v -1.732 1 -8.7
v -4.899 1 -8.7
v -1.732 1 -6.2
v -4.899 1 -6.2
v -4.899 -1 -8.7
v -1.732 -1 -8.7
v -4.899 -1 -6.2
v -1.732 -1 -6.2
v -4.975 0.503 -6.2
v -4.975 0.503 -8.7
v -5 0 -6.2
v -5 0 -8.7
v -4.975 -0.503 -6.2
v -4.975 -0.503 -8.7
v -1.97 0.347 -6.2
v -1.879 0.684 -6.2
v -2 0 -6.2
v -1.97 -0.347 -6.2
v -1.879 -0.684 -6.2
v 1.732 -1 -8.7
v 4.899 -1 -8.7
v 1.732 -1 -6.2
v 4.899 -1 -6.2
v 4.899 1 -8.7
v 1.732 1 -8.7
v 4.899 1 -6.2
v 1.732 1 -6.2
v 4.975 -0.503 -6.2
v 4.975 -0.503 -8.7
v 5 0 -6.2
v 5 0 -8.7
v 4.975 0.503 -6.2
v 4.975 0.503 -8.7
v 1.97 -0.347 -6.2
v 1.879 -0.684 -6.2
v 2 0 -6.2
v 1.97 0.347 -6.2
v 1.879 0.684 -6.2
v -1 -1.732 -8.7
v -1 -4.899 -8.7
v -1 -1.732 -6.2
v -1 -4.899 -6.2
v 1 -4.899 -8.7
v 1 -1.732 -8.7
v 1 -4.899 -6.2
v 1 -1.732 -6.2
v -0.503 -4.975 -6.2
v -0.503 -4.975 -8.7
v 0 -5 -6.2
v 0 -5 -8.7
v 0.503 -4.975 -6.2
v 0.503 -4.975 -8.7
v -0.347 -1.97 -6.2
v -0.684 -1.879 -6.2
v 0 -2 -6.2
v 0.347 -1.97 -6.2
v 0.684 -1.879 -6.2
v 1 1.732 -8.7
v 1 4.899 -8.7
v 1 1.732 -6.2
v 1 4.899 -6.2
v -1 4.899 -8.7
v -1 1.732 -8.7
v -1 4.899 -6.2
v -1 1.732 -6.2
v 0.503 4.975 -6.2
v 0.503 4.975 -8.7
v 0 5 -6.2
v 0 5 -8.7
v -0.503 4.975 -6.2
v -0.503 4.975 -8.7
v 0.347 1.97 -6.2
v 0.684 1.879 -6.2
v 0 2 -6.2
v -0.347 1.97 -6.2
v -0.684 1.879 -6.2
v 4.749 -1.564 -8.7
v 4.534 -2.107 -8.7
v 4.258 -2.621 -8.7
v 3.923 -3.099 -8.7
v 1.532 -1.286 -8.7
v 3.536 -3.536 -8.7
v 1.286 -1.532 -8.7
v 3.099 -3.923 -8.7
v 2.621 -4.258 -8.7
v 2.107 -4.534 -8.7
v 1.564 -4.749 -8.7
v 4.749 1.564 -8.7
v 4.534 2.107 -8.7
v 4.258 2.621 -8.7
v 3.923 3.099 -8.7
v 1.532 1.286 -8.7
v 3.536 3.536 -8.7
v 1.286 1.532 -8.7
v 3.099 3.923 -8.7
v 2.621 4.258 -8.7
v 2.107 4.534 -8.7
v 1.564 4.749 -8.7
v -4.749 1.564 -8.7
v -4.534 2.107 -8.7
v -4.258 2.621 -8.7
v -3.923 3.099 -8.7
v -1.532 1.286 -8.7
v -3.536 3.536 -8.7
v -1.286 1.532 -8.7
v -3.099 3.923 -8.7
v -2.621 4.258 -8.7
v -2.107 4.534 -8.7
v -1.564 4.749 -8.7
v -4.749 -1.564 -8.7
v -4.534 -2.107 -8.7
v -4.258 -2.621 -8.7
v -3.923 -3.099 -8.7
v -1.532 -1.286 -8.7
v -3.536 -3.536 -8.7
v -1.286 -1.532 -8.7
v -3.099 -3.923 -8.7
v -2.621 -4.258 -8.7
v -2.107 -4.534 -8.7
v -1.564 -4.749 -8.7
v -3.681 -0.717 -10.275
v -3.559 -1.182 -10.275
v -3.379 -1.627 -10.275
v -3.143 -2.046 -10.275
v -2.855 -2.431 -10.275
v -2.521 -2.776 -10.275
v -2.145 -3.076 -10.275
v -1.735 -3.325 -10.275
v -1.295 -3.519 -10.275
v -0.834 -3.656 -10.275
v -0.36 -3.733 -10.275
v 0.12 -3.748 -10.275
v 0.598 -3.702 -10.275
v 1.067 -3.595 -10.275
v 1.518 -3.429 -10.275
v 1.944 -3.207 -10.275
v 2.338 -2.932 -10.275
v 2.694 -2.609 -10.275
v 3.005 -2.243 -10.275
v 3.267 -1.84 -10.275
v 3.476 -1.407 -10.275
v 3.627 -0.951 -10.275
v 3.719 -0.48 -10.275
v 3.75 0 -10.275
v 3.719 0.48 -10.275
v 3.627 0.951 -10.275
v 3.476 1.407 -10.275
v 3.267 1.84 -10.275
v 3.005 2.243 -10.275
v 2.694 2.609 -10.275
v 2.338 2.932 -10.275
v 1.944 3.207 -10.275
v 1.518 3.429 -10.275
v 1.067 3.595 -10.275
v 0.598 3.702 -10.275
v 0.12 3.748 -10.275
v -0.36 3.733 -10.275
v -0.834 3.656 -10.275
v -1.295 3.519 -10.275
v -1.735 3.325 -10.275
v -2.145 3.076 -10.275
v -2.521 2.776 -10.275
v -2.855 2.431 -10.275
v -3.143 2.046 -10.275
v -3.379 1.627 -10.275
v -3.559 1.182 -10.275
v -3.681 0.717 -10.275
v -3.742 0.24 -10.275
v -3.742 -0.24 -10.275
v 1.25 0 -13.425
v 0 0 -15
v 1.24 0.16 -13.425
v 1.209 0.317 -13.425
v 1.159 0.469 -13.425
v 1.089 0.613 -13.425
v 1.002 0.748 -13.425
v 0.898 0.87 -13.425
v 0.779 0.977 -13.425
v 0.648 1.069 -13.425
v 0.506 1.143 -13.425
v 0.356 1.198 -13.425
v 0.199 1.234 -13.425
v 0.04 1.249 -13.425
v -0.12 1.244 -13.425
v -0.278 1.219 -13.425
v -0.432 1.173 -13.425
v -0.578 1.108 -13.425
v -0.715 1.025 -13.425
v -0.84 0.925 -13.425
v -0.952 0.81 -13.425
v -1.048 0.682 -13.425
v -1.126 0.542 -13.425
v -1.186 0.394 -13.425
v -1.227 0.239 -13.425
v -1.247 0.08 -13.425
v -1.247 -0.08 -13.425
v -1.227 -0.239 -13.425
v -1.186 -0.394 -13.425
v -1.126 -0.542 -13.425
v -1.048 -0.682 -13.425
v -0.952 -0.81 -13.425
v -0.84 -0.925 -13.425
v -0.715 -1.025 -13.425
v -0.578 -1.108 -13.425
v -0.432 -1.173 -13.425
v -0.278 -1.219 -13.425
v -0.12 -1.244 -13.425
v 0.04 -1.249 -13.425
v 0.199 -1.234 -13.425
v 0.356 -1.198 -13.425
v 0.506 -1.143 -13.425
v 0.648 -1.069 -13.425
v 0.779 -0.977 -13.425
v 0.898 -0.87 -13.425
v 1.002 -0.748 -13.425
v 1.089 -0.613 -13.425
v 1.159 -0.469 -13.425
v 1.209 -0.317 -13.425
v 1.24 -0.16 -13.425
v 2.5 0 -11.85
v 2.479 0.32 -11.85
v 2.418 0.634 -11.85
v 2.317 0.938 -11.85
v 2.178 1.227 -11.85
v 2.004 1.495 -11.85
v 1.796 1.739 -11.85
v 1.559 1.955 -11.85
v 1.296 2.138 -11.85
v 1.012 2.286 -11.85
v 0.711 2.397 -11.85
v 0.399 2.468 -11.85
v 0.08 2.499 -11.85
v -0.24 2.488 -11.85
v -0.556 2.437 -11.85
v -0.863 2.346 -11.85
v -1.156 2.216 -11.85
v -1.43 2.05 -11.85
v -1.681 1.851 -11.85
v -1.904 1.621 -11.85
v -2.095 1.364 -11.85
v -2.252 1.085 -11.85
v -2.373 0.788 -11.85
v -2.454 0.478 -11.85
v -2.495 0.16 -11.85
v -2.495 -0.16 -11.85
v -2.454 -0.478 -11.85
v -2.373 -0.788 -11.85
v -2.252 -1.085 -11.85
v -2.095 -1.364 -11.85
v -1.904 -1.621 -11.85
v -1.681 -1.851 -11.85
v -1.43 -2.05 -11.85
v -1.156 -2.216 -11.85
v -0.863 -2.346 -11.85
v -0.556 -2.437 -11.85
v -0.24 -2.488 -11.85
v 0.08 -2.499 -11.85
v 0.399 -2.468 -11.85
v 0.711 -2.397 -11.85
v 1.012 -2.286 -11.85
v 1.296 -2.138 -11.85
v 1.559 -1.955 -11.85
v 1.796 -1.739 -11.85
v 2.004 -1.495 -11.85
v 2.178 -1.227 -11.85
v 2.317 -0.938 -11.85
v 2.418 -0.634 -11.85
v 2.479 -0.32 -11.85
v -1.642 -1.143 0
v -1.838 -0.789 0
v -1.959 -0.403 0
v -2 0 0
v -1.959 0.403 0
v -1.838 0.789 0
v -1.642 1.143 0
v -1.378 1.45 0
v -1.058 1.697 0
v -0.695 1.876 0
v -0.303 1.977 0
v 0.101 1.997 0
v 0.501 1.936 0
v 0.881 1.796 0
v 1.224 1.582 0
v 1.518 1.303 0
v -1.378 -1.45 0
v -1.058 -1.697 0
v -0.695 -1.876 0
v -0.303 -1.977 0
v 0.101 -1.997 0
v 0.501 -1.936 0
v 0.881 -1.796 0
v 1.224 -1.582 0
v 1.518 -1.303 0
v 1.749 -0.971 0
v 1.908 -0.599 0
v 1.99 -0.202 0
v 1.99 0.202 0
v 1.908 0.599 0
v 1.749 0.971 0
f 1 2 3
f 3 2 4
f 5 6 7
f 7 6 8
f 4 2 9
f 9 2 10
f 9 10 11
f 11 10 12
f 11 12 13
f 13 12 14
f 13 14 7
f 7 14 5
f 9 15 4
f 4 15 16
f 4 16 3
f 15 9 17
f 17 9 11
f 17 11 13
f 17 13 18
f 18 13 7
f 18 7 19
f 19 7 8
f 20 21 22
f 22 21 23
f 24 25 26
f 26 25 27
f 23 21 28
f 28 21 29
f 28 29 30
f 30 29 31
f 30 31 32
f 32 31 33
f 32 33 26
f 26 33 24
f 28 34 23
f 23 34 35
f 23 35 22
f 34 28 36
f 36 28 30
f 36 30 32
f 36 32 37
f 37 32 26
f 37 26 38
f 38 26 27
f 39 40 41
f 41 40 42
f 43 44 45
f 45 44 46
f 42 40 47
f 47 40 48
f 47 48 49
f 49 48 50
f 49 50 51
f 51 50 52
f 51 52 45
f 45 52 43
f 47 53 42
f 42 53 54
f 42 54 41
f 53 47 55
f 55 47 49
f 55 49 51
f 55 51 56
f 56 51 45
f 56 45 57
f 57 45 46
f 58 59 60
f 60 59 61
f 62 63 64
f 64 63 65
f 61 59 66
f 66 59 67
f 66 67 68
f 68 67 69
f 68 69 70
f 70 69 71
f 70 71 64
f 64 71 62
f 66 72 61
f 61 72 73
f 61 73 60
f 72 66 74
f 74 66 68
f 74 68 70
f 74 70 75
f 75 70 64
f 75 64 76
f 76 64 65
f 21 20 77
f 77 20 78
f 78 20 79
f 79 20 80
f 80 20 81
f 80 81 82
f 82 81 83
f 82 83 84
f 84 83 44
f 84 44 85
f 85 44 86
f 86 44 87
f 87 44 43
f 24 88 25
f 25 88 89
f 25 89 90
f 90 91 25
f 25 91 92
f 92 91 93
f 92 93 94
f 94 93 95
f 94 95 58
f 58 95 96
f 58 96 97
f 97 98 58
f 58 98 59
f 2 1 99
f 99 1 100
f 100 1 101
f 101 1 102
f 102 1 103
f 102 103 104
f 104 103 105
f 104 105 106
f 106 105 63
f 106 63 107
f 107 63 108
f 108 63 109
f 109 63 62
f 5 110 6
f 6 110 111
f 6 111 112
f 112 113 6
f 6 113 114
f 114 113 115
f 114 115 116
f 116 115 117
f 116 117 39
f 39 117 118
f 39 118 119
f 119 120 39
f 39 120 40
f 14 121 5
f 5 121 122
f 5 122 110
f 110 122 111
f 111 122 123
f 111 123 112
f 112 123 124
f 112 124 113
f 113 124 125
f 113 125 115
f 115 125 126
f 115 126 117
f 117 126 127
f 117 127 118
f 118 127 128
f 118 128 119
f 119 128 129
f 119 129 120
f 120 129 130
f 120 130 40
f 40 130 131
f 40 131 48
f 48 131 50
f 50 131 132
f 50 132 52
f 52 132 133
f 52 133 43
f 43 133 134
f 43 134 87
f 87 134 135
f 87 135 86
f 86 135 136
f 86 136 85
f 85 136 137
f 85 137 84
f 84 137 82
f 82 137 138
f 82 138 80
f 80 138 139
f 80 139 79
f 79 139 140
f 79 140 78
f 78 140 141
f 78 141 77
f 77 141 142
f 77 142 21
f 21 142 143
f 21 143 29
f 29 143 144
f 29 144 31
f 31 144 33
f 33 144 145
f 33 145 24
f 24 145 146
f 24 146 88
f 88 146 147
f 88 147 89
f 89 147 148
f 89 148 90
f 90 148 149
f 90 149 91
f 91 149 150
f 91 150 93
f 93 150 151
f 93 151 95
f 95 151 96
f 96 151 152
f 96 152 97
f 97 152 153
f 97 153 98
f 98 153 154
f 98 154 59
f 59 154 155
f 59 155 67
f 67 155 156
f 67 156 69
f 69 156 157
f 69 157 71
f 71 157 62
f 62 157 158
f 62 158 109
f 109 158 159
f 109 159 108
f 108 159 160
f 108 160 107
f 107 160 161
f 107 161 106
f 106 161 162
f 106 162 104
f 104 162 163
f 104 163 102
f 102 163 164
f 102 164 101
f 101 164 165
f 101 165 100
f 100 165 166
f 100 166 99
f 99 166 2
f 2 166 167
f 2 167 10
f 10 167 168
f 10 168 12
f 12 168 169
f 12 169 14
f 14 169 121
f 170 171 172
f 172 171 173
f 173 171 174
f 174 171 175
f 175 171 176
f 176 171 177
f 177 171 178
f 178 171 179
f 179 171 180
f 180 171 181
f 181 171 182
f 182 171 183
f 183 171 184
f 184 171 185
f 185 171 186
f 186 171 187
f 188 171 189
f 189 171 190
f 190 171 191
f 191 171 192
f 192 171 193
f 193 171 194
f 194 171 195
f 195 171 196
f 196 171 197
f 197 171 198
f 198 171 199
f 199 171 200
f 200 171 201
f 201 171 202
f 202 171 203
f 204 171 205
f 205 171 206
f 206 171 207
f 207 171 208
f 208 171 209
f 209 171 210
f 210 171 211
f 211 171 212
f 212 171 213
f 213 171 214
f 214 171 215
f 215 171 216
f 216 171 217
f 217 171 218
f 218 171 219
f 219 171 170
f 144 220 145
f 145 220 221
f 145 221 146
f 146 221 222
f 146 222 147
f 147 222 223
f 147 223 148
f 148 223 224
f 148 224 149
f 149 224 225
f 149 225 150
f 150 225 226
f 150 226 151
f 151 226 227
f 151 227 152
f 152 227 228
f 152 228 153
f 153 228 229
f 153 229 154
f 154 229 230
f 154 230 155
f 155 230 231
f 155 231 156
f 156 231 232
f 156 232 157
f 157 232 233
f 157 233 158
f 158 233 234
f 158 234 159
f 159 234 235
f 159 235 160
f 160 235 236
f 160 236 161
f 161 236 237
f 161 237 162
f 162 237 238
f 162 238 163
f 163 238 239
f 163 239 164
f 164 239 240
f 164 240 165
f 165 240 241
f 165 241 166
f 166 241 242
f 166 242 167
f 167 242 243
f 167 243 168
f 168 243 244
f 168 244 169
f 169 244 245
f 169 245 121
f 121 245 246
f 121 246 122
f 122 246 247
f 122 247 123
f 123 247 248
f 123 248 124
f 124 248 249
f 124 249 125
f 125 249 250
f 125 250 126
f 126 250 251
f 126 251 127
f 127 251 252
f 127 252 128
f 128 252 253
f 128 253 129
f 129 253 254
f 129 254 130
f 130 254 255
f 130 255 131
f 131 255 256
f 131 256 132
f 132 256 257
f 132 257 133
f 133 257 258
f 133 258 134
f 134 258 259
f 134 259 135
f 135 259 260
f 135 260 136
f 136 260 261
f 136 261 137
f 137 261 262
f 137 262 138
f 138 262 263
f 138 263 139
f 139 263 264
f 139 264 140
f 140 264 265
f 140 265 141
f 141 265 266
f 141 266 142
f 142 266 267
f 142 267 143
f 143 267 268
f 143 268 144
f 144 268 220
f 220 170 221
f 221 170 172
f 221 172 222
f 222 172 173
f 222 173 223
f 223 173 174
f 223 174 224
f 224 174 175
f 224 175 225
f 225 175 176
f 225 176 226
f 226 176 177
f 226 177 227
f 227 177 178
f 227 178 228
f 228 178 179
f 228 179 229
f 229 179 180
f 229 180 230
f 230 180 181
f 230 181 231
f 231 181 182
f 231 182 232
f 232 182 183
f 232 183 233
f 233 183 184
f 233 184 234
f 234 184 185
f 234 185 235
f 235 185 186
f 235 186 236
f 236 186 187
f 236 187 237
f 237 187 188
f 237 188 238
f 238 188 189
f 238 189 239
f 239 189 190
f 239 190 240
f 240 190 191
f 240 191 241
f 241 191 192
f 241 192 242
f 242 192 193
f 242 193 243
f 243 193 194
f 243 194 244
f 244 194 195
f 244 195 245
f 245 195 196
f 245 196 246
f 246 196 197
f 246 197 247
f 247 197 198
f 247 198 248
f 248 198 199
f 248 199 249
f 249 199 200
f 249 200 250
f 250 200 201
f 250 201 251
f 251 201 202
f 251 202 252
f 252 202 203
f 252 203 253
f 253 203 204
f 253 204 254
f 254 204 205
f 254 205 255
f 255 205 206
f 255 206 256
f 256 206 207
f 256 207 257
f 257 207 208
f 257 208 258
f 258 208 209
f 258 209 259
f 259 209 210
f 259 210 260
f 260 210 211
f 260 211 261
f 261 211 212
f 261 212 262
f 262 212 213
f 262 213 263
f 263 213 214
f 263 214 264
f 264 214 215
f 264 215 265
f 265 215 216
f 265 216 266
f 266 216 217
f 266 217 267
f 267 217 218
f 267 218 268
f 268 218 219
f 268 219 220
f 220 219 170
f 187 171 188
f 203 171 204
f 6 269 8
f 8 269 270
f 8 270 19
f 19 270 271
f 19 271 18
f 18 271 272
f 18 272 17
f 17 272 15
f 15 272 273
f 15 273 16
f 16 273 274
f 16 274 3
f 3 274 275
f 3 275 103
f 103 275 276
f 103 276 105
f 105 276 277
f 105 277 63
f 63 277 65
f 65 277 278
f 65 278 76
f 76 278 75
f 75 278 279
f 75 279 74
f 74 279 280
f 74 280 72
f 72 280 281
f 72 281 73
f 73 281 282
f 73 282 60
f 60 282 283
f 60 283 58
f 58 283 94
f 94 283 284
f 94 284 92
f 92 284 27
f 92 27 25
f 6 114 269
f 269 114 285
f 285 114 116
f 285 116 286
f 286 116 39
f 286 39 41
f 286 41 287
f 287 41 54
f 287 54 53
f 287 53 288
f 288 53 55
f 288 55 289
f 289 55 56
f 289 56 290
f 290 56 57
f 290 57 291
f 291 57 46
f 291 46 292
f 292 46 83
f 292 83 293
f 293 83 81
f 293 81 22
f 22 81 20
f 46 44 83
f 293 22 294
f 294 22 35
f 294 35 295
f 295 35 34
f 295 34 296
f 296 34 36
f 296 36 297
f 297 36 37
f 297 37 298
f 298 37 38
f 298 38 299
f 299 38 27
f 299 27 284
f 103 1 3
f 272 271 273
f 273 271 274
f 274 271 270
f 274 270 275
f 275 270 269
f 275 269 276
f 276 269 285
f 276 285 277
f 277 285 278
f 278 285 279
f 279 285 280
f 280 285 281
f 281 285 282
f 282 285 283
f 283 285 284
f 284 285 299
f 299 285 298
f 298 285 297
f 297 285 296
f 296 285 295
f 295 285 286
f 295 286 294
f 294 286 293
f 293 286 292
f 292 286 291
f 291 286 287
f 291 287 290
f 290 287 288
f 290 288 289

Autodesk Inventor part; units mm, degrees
ref_plane "YZ Plane" through (0, 0, 0) normal (1, 0, 0) x (0, 1, 0)
ref_plane "XZ Plane" through (0, 0, 0) normal (0, 1, 0) x (-1, 0, 0)
ref_plane "XY Plane" through (0, 0, 0) normal (0, 0, 1) x (1, 0, 0)
sketch "Sketch1" plane through (0, 0, 0) normal (0, 1, 0) x (-1, 0, 0)
  line L0 (0, 0) -> (2, 0)
  line L1 (2, 0) -> (2, -8.7)
  line L2 (2, -8.7) -> (5, -8.7)
  line L3 (5, -8.7) -> (0, -15)
  line L4 (0, -15) -> (0, 0)
  dimension "d0" = 15
  dimension "d1" = 5
  dimension "d3" = 2
  dimension "d5" = 8.7
revolve "Revolution1" add sketch "Sketch1" angle 360 about axis through (0, 0, -15) along (0, 0, 1)
sketch "Sketch2" plane through (0, 0, -8.7) normal (0, 0, 1) x (1, 0, 0)
  circle A0 centre (0, 0) radius 2 projected
  circle A1 centre (0, 0) radius 5 projected
  line L0 (1.7321, 1) -> (4.899, 1)
  line L1 (0, 0) -> (5, 0) construction
  line L2 (1.7321, -1) -> (4.899, -1)
  line L3 (-1, 1.7321) -> (-1, 4.899)
  line L4 (1, 1.7321) -> (1, 4.899)
  line L5 (-1.7321, -1) -> (-4.899, -1)
  line L6 (-1.7321, 1) -> (-4.899, 1)
  line L7 (1, -1.7321) -> (1, -4.899)
  line L8 (-1, -1.7321) -> (-1, -4.899)
  dimension "d8" = 1
  dimension "d11" = 360
extrude "Extrusion1" add sketch "Sketch2" along normal blind 2.5 contours A0 L0 A1 L2 | A0 L3 A1 L4 | L7 A1 L8 A0 | A0 L5 A1 L6
properties part number "Goma tacómetro"
